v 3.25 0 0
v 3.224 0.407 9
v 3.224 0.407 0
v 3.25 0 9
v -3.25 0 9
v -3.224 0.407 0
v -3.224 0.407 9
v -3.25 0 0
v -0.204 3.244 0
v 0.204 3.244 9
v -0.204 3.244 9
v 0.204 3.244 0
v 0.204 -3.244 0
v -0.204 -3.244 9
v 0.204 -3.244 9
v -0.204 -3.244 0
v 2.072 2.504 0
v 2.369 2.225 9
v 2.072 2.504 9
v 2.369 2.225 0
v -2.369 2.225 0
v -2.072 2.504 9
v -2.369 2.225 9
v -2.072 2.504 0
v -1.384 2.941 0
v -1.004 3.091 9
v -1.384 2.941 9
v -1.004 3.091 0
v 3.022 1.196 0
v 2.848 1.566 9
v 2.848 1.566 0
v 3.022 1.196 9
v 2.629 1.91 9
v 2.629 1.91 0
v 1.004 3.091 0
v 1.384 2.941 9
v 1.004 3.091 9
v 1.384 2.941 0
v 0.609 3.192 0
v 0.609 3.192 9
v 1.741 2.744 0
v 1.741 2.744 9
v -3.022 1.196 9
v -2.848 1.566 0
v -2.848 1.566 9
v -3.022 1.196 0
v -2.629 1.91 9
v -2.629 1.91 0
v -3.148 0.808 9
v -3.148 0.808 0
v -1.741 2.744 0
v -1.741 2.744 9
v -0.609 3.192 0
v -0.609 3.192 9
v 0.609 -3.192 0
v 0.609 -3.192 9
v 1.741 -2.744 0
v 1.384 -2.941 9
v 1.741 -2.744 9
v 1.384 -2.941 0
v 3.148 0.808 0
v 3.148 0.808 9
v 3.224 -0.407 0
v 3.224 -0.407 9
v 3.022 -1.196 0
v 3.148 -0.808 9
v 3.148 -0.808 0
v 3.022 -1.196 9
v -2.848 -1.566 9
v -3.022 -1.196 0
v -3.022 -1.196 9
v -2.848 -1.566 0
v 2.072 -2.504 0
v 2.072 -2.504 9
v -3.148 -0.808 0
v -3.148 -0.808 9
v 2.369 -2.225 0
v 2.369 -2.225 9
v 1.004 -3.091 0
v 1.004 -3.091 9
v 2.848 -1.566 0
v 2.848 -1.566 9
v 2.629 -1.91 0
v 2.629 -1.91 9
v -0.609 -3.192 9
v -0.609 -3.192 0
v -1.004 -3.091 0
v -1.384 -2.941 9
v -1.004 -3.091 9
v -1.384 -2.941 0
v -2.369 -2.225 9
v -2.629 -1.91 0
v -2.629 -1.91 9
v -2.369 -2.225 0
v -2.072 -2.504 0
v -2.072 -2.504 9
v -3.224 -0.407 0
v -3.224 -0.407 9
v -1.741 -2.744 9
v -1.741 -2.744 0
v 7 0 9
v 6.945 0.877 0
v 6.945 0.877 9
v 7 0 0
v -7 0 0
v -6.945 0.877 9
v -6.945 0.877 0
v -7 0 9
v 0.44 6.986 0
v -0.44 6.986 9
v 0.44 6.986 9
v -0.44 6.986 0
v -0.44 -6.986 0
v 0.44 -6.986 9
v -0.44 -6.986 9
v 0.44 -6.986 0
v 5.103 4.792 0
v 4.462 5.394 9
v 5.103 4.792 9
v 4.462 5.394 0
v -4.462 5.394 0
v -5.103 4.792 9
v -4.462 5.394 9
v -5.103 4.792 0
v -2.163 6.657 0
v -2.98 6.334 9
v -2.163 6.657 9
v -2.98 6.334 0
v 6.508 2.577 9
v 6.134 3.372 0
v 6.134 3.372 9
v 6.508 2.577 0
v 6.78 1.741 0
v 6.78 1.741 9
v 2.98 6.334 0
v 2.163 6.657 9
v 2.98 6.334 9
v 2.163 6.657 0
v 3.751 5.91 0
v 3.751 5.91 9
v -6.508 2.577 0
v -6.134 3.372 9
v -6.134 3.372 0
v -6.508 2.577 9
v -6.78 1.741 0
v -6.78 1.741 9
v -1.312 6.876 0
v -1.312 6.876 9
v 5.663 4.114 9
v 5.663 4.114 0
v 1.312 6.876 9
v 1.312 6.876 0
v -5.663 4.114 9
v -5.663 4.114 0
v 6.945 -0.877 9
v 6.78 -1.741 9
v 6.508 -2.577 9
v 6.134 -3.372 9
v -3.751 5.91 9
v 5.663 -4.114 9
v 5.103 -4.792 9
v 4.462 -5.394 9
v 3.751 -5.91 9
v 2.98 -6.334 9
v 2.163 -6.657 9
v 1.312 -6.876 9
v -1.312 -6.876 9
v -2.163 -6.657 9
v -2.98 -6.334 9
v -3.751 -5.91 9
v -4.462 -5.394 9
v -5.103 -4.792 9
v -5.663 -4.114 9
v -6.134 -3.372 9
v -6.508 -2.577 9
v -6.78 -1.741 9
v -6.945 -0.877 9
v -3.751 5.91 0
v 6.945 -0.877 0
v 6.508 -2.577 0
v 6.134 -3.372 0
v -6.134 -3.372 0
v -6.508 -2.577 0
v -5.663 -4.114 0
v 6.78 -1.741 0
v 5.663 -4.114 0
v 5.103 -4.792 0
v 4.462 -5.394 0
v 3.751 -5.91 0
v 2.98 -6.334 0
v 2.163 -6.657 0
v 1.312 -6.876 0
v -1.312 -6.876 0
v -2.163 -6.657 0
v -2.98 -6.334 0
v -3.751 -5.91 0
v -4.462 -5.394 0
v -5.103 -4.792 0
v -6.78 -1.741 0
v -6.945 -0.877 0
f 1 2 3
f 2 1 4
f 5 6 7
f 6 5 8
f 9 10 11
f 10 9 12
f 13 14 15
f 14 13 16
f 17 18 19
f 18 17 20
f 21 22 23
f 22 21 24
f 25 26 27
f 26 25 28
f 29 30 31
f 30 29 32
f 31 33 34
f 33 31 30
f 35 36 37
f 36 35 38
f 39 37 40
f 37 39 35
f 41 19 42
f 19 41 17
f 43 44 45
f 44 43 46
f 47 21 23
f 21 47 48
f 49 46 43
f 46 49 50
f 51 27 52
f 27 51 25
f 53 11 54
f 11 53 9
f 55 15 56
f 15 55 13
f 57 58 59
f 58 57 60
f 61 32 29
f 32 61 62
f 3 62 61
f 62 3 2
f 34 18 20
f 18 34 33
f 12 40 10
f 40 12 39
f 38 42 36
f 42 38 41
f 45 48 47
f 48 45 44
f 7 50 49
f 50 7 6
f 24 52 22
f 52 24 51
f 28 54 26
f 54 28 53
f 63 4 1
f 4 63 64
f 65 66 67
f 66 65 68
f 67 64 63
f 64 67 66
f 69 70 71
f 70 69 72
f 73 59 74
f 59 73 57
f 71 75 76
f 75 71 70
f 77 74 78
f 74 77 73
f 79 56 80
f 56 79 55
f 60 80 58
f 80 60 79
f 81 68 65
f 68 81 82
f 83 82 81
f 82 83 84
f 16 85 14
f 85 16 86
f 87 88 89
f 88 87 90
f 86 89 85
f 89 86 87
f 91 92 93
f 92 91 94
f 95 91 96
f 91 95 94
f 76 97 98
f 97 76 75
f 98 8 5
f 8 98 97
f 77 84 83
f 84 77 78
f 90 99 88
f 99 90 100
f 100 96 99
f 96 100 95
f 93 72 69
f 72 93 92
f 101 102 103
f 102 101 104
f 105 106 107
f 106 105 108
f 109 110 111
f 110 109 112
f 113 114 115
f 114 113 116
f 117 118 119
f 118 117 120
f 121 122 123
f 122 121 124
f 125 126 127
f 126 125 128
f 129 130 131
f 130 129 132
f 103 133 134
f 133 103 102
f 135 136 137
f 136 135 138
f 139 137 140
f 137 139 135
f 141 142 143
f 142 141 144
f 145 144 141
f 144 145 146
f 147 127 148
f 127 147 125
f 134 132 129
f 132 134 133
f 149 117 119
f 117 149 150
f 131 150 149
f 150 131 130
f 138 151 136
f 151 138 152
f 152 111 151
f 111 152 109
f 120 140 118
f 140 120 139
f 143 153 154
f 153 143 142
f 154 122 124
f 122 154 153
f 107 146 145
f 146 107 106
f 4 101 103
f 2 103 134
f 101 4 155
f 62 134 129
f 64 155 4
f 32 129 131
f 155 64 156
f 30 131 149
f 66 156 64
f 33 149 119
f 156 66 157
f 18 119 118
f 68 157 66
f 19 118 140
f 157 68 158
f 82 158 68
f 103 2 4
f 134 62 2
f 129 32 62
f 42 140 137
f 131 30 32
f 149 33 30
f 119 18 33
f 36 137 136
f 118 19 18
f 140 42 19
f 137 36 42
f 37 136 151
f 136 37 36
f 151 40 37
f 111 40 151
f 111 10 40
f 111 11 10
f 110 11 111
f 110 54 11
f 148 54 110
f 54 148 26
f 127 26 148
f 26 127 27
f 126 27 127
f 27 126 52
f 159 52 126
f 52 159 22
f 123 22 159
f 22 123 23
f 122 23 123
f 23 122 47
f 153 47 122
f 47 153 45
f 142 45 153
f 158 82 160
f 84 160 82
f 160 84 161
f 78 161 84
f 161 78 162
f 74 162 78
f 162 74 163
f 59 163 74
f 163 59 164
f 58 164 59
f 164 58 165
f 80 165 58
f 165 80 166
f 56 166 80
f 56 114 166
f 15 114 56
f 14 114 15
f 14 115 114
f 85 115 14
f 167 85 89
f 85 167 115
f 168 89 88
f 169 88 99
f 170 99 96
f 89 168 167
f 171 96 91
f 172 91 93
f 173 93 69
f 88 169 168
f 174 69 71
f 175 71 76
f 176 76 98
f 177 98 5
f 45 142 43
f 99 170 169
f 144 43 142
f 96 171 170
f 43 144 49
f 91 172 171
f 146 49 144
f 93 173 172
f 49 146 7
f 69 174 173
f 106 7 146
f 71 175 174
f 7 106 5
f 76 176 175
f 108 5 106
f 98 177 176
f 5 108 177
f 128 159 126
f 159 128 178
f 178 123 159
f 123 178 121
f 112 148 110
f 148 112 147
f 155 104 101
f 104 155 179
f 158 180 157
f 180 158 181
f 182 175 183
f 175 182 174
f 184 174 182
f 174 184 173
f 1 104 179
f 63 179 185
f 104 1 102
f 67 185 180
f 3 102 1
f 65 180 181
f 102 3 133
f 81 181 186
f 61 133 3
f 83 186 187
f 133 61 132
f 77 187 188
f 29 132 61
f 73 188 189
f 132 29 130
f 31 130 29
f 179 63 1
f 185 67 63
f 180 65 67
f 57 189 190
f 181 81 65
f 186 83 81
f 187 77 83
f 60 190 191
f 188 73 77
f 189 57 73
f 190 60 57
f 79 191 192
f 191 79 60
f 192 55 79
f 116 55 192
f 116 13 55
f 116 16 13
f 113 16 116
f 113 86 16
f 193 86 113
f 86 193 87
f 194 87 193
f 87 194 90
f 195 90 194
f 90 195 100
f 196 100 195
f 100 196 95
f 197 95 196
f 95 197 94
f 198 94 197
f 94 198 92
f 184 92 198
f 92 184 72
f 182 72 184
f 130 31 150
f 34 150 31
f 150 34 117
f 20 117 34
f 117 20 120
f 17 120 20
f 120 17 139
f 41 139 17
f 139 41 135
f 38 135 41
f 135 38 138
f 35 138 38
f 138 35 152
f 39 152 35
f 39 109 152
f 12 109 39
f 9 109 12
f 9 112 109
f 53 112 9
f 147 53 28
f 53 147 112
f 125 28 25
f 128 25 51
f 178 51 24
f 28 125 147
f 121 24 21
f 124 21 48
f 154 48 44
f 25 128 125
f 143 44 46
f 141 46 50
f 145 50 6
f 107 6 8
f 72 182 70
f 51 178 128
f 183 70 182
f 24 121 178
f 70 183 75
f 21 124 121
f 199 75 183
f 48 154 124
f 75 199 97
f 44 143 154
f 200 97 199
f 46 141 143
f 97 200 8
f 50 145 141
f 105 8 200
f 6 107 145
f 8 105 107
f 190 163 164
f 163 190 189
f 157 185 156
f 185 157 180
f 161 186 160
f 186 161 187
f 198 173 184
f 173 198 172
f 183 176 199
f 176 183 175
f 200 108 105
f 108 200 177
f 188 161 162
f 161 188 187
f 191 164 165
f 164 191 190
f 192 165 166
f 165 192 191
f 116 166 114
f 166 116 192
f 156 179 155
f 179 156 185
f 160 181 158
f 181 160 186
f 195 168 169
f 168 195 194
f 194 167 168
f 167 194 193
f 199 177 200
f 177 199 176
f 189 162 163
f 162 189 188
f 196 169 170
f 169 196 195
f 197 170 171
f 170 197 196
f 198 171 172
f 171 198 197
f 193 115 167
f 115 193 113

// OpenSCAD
$fn = 50;


difference() {
	union() {
		cylinder(h = 9, r = 7.0000000000);
	}
	union() {
		#translate(v = [0.0000000000, 0.0000000000, -100.0000000000]) {
			cylinder(h = 200, r = 3.2500000000);
		}
		#translate(v = [0.0000000000, 0.0000000000, -100.0000000000]) {
			cylinder(h = 200, r = 3.2500000000);
		}
		#translate(v = [0.0000000000, 0.0000000000, -100.0000000000]) {
			cylinder(h = 200, r = 3.2500000000);
		}
		#translate(v = [0.0000000000, 0.0000000000, -100.0000000000]) {
			cylinder(h = 200, r = 3.2500000000);
		}
		#cylinder(h = 9, r = 2.5000000000);
	}
}
